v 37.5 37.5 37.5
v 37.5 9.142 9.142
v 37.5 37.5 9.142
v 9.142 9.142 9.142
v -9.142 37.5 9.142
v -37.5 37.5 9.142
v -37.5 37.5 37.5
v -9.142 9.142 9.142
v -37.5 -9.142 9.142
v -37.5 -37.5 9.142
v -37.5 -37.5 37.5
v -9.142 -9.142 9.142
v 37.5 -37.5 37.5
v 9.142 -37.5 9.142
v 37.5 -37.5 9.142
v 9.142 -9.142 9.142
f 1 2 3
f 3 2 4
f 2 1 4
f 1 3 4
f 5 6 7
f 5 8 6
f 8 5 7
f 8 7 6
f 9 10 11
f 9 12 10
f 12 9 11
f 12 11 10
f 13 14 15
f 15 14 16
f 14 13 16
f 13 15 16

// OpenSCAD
// file: def.scad
round_radius = 1.25;
sticker_margin = 3;
sticker_round_radius = 1;
total_size = 75;
base_size = (total_size - round_radius * 4) / (4 + sqrt(2));
cut1_dis = base_size * sqrt(2) / 2;
cut2_dis = base_size * (1 + sqrt(2) / 2);
cut2_corner_dis = base_size * (sqrt(2) / 2 * sqrt(3) + 1 / 3 * sqrt(3));
inf = total_size * 10;
// main file
include <def.scad>

module face_pick_ccw() {
    difference() {
        cube([total_size, total_size, total_size], center = true);
        rotate([180, 0, 0])
            translate([-inf, -inf, -cut1_dis])
                cube([inf * 2, inf * 2, inf]);
        rotate([45, 0, 0])
            translate([-inf, -inf, 0])
                cube([inf * 2, inf * 2, inf]);
        rotate([-90, 0, 45])
            translate([-inf, -inf, 0])
                cube([inf * 2, inf * 2, inf]);
    }
}

for (vec = [[0, 0, 0], [0, 0, 90], [0, 0, 180], [0, 0, -90]])
    rotate(vec)
        face_pick_ccw();
